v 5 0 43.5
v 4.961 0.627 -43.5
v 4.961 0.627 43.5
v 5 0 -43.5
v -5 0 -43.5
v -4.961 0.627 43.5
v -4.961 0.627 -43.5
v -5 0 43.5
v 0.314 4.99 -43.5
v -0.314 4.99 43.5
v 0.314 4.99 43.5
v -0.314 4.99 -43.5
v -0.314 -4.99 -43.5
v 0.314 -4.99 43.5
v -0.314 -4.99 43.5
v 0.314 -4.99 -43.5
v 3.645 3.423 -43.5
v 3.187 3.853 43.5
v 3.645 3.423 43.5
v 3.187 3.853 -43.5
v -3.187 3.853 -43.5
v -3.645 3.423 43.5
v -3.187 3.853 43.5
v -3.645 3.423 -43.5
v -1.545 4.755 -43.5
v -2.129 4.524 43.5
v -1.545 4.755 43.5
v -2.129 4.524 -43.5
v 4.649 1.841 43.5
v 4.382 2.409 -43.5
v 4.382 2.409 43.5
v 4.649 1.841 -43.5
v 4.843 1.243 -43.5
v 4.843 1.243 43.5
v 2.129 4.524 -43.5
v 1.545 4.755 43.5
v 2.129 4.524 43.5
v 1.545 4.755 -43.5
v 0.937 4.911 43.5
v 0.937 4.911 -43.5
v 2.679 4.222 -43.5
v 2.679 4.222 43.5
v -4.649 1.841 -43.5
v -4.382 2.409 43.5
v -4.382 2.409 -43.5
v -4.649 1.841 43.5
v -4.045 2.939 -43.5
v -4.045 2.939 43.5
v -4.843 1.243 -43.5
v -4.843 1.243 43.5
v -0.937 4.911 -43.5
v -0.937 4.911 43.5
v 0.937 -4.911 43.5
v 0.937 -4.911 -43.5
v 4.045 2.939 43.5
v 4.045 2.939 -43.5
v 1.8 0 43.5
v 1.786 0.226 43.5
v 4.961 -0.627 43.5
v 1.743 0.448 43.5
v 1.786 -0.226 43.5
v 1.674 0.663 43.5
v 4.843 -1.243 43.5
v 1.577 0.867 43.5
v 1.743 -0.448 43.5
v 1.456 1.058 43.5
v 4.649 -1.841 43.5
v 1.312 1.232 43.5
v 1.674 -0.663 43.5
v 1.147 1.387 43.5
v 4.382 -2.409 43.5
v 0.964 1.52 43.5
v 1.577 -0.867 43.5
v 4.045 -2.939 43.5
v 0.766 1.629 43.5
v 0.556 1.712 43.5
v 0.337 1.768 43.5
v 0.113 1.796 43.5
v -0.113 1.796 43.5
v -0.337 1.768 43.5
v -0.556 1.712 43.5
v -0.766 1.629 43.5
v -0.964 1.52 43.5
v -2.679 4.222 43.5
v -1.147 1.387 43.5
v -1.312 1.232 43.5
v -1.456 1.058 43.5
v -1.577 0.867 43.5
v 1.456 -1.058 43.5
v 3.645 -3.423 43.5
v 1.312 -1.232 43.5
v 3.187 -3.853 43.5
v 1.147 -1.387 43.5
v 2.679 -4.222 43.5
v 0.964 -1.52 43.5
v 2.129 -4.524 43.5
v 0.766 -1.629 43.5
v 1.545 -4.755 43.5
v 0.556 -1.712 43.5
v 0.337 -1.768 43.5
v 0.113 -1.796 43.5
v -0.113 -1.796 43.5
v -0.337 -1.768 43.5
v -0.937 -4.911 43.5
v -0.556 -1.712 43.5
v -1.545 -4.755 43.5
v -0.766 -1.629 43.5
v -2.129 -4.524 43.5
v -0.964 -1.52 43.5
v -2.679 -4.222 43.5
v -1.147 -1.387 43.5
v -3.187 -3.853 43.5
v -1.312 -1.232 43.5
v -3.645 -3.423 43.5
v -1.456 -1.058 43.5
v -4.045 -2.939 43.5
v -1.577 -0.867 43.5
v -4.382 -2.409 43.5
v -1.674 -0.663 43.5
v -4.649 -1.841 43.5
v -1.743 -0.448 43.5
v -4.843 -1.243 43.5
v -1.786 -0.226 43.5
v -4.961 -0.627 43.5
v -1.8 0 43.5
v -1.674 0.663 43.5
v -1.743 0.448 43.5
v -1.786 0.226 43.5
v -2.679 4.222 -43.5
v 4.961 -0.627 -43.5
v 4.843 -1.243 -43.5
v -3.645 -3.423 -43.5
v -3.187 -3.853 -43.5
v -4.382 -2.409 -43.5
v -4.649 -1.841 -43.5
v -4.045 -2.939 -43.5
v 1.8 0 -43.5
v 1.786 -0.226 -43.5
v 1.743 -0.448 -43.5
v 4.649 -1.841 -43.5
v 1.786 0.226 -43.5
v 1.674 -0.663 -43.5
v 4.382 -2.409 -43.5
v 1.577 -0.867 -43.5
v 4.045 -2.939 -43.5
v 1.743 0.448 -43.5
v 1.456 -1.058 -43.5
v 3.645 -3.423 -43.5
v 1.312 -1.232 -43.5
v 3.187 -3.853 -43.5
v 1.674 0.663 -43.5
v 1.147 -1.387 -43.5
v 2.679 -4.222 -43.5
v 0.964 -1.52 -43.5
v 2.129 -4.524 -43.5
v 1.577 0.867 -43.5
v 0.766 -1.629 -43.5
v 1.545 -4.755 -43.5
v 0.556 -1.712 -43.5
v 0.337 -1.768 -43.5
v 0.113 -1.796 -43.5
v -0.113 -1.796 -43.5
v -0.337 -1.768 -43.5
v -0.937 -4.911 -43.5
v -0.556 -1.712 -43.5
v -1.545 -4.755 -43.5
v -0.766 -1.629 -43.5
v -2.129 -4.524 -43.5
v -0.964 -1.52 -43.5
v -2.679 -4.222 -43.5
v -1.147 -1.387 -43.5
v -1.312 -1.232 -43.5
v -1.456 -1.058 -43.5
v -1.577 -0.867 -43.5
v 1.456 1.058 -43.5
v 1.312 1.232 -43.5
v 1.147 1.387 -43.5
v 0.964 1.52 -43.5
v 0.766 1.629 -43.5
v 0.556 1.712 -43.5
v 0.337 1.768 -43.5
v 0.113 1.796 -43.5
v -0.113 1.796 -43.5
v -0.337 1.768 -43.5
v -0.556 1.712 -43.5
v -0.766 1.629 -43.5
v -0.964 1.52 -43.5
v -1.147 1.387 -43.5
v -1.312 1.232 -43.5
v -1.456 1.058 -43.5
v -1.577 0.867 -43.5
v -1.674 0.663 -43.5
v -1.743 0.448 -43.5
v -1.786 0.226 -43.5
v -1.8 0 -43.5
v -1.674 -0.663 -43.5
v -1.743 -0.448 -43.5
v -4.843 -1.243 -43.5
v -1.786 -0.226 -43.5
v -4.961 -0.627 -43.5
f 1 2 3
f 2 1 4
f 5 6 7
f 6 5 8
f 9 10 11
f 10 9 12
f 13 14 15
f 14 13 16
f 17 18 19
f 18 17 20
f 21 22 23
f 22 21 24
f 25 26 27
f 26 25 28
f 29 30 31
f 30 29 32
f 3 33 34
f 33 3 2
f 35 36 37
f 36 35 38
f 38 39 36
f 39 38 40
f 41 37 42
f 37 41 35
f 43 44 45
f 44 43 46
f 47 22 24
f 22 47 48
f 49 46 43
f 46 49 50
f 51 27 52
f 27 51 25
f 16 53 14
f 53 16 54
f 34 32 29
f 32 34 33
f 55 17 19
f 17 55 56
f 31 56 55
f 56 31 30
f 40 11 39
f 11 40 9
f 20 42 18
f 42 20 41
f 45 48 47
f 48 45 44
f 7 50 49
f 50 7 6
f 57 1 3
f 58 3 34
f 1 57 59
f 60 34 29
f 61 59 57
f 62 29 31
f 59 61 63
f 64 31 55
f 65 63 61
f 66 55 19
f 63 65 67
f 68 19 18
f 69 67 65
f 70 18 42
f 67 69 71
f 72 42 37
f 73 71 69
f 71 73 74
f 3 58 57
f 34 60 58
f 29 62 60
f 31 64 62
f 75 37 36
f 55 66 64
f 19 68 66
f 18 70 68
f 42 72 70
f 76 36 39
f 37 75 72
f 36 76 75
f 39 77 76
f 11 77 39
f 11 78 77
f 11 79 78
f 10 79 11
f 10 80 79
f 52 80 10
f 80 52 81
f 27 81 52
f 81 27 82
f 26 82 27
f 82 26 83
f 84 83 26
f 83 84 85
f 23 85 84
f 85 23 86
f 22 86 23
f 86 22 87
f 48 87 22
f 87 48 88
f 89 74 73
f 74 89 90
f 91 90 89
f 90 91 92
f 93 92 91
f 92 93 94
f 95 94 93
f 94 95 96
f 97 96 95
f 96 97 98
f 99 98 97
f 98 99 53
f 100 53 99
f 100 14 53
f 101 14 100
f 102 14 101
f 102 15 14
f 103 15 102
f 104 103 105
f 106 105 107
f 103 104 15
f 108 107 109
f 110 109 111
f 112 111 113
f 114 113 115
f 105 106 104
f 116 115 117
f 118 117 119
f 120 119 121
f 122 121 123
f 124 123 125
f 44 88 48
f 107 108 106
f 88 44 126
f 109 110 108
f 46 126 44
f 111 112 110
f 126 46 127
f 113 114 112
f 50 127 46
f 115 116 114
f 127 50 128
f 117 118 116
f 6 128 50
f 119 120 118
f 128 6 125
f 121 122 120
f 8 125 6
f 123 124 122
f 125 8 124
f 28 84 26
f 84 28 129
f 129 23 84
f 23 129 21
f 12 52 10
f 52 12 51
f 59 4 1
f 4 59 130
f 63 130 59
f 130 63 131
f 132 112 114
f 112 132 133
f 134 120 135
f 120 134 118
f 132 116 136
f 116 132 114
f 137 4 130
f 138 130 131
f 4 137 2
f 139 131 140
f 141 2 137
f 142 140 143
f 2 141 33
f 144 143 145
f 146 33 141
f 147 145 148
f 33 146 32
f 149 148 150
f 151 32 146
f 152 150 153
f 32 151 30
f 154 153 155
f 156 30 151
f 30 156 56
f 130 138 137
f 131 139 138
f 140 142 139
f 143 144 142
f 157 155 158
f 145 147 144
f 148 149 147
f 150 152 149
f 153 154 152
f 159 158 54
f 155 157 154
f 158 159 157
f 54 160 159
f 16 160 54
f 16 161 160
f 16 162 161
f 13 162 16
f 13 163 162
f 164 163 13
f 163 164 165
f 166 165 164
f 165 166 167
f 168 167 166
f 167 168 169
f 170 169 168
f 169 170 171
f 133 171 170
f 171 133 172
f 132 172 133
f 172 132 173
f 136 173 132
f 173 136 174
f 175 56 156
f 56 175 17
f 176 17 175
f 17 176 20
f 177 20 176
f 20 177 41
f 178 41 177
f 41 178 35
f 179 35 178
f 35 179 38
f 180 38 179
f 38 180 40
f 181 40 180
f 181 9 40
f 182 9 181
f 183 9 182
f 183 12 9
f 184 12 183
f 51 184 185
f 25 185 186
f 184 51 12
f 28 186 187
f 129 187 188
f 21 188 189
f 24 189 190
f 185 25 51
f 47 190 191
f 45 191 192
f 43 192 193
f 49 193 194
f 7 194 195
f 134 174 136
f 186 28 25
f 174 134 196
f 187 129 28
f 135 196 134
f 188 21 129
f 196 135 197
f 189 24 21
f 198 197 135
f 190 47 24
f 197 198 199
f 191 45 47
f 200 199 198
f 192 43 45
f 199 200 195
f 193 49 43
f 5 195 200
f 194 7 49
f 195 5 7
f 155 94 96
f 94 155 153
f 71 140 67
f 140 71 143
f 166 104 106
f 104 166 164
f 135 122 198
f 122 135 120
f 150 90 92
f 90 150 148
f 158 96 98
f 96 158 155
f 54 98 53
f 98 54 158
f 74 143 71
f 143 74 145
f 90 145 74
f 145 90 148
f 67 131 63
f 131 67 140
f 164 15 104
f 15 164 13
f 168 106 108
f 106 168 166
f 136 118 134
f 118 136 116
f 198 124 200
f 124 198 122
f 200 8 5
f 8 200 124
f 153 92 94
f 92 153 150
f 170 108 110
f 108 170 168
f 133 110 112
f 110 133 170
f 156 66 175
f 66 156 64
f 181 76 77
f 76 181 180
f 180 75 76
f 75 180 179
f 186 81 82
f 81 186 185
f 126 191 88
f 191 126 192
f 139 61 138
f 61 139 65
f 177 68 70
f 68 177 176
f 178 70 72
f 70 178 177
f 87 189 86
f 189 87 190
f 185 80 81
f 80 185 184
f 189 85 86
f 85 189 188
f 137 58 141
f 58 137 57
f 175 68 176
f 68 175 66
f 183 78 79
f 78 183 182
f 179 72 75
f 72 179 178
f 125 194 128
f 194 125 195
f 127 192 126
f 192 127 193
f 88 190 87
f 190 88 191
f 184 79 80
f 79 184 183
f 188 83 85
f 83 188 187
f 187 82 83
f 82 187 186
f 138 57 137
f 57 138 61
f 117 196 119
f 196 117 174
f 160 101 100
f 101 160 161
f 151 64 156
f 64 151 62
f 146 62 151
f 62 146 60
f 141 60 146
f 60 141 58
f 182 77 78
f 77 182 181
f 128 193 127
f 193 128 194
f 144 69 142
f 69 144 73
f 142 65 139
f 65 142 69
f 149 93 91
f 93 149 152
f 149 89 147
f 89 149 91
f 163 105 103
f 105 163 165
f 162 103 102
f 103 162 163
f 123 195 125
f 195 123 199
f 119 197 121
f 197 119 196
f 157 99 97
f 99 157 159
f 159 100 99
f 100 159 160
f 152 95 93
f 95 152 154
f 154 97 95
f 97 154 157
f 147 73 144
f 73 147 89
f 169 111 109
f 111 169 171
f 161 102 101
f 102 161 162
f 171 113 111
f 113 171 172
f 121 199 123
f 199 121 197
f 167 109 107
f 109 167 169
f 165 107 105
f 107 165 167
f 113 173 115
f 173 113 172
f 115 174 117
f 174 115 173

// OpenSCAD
$fn = 50;


difference() {
	union() {
		translate(v = [0, 0, -43.5000000000]) {
			cylinder(h = 87, r = 5.0000000000);
		}
	}
	union() {
		translate(v = [0, 0, -100.0000000000]) {
			cylinder(h = 200, r = 1.8000000000);
		}
	}
}
